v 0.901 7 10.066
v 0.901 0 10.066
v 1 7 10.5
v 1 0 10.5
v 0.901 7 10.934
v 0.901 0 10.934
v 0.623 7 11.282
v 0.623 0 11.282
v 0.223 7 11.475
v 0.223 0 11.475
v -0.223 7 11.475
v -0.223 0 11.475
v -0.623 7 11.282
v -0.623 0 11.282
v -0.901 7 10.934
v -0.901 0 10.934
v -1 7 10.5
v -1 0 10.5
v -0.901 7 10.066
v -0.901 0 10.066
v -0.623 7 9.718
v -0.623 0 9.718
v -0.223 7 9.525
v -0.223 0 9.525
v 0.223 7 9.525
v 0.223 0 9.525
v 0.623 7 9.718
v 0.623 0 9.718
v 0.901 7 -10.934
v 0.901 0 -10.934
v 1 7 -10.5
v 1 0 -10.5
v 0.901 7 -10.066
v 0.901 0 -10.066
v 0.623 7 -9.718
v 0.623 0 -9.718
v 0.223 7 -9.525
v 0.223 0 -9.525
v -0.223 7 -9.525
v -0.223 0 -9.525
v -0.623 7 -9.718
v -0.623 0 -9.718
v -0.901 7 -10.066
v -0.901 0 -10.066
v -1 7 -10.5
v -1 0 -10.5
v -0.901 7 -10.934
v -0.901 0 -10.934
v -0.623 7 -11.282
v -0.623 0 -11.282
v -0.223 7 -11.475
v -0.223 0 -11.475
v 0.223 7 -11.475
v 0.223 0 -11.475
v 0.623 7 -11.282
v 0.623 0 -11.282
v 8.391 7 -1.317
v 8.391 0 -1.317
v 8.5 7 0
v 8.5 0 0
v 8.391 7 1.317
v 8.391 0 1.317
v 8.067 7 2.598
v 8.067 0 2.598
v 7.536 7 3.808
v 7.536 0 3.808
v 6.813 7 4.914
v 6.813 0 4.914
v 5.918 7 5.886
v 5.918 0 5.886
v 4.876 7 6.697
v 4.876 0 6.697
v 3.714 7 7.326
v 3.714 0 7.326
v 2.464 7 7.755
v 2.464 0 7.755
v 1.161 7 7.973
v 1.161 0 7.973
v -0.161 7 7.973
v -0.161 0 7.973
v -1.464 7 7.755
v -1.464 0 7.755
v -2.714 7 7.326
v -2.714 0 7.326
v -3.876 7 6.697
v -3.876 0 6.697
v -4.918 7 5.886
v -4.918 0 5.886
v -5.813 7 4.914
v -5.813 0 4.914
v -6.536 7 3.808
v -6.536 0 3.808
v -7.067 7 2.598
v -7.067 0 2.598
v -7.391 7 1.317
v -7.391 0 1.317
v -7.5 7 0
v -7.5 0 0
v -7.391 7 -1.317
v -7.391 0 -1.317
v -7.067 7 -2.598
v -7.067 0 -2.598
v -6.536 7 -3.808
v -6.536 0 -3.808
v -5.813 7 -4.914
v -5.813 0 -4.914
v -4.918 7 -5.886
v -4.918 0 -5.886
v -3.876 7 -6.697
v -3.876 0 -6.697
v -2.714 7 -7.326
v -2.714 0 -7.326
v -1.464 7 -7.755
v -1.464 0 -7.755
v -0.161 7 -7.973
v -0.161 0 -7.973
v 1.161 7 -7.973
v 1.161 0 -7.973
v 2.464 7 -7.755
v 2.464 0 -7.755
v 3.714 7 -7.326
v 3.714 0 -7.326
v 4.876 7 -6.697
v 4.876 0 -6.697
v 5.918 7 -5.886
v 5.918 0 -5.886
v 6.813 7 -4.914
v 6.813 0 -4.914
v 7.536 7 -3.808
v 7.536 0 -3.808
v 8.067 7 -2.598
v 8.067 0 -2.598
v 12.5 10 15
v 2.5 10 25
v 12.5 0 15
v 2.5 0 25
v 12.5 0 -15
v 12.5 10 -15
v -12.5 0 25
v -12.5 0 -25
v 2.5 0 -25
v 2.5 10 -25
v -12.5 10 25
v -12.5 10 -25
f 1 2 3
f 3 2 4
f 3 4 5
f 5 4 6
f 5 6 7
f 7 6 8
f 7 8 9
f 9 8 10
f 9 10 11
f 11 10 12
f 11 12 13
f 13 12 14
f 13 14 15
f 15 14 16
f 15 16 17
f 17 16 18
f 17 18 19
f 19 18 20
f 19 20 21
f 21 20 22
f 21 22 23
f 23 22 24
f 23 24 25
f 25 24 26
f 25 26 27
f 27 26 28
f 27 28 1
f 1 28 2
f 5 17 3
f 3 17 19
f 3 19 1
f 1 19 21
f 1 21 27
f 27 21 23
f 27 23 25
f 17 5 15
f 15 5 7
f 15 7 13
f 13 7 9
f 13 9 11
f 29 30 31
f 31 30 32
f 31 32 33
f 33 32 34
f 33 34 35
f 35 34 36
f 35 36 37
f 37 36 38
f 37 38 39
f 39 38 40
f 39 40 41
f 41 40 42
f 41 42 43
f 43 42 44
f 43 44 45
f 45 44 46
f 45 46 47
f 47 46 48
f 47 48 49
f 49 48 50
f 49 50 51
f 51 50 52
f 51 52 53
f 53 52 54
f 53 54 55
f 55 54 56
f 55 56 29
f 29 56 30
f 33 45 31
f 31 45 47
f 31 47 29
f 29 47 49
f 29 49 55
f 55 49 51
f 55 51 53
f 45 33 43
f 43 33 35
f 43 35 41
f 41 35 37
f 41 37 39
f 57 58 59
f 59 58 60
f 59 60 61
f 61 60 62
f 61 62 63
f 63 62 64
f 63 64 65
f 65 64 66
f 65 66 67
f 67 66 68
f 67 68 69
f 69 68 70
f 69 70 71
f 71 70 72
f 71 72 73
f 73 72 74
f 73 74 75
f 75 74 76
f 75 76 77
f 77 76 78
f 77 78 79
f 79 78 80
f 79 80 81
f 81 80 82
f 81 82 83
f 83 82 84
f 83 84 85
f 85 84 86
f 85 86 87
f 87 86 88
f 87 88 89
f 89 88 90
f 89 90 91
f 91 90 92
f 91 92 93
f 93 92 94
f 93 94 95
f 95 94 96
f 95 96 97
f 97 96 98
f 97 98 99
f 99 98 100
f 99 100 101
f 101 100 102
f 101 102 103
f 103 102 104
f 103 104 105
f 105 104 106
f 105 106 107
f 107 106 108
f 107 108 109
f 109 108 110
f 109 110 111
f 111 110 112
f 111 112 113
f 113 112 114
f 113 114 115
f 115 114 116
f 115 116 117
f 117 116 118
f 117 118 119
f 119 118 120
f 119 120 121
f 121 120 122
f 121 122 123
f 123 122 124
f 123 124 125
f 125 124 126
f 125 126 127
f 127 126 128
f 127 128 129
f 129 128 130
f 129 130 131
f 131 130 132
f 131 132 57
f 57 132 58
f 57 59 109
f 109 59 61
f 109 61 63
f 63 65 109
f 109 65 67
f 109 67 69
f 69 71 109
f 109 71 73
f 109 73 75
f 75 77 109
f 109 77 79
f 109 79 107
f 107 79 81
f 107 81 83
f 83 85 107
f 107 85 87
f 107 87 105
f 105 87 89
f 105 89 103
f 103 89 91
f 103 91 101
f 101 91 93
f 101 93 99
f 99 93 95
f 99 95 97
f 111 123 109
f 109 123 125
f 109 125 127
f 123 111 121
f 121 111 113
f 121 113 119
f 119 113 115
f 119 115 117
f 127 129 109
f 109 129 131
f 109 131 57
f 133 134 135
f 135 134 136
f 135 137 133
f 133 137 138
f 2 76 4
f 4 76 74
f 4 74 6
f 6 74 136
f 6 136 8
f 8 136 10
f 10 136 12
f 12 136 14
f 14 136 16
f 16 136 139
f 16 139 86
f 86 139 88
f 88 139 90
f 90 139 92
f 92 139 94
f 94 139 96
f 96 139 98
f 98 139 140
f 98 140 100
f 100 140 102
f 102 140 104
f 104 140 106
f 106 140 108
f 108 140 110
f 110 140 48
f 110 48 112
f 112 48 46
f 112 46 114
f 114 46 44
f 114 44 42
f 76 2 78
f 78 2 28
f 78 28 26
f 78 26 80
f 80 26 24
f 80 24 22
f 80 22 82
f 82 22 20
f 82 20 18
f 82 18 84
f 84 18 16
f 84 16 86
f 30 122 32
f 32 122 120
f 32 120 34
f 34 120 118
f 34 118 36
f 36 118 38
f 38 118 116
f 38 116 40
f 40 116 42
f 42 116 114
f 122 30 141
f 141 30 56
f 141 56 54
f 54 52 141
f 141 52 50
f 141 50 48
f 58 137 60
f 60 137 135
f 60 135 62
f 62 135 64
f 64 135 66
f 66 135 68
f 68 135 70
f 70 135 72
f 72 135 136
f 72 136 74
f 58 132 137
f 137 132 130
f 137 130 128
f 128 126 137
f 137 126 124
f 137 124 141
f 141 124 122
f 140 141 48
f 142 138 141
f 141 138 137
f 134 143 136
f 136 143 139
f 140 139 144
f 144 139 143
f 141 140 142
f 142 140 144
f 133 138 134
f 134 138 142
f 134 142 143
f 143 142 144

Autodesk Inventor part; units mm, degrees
ref_plane "YZ Plane" through (0, 0, 0) normal (1, 0, 0) x (0, 1, 0)
ref_plane "XZ Plane" through (0, 0, 0) normal (0, 1, 0) x (-1, 0, 0)
ref_plane "XY Plane" through (0, 0, 0) normal (0, 0, 1) x (1, 0, 0)
sketch "스케치1" plane through (0, 0, 0) normal (0, 1, 0) x (-1, 0, 0)
  line L0 (12.5, 25) -> (-12.5, 25)
  line L1 (-12.5, 25) -> (-12.5, -25)
  line L2 (-12.5, -25) -> (12.5, -25)
  line L3 (12.5, -25) -> (12.5, 25)
  line L4 (12.5, 25) -> (-12.5, -25) construction
  line L5 (-12.5, 25) -> (12.5, -25) construction
  point P0 (0, 0)
  dimension "d0" = 50
  dimension "d1" = 25
extrude "돌출1" add sketch "스케치1" along normal blind 10
chamfer "모따기1" distance 10 angle 45 2 edges at (12.5, 5, -25) (12.5, 5, 25)
sketch "스케치2" plane through (0, 0, 0) normal (0, -1, 0) x (1, 0, 0)
  circle A0 centre (0.5, 0) radius 8
  line L0 (12.5, 15) -> (12.5, -15) projected
  point P0 (0, 0)
  point P1 (12.5, 0)
  point P2 (12.5, 0)
  dimension "d7" = 16
  dimension "d8" = 12
extrude "돌출2" cut sketch "스케치2" against normal blind 7
sketch "스케치3" plane through (0, 0, 0) normal (0, -1, 0) x (1, 0, 0)
  circle A0 centre (0, 10.5) radius 1
  line L0 (0, 0) -> (5.1796, 0)
  circle A1 centre (-10.5, 0) radius 1
  circle A2 centre (0, -10.5) radius 1
  circle A3 centre (10.5, 0) radius 1
  dimension "d11" = 2
  dimension "d18" = 360
  dimension "d20" = 21
extrude "돌출3" cut sketch "스케치3" against normal blind 7 contours A0 | A2
properties part number "책상 고정 판"
